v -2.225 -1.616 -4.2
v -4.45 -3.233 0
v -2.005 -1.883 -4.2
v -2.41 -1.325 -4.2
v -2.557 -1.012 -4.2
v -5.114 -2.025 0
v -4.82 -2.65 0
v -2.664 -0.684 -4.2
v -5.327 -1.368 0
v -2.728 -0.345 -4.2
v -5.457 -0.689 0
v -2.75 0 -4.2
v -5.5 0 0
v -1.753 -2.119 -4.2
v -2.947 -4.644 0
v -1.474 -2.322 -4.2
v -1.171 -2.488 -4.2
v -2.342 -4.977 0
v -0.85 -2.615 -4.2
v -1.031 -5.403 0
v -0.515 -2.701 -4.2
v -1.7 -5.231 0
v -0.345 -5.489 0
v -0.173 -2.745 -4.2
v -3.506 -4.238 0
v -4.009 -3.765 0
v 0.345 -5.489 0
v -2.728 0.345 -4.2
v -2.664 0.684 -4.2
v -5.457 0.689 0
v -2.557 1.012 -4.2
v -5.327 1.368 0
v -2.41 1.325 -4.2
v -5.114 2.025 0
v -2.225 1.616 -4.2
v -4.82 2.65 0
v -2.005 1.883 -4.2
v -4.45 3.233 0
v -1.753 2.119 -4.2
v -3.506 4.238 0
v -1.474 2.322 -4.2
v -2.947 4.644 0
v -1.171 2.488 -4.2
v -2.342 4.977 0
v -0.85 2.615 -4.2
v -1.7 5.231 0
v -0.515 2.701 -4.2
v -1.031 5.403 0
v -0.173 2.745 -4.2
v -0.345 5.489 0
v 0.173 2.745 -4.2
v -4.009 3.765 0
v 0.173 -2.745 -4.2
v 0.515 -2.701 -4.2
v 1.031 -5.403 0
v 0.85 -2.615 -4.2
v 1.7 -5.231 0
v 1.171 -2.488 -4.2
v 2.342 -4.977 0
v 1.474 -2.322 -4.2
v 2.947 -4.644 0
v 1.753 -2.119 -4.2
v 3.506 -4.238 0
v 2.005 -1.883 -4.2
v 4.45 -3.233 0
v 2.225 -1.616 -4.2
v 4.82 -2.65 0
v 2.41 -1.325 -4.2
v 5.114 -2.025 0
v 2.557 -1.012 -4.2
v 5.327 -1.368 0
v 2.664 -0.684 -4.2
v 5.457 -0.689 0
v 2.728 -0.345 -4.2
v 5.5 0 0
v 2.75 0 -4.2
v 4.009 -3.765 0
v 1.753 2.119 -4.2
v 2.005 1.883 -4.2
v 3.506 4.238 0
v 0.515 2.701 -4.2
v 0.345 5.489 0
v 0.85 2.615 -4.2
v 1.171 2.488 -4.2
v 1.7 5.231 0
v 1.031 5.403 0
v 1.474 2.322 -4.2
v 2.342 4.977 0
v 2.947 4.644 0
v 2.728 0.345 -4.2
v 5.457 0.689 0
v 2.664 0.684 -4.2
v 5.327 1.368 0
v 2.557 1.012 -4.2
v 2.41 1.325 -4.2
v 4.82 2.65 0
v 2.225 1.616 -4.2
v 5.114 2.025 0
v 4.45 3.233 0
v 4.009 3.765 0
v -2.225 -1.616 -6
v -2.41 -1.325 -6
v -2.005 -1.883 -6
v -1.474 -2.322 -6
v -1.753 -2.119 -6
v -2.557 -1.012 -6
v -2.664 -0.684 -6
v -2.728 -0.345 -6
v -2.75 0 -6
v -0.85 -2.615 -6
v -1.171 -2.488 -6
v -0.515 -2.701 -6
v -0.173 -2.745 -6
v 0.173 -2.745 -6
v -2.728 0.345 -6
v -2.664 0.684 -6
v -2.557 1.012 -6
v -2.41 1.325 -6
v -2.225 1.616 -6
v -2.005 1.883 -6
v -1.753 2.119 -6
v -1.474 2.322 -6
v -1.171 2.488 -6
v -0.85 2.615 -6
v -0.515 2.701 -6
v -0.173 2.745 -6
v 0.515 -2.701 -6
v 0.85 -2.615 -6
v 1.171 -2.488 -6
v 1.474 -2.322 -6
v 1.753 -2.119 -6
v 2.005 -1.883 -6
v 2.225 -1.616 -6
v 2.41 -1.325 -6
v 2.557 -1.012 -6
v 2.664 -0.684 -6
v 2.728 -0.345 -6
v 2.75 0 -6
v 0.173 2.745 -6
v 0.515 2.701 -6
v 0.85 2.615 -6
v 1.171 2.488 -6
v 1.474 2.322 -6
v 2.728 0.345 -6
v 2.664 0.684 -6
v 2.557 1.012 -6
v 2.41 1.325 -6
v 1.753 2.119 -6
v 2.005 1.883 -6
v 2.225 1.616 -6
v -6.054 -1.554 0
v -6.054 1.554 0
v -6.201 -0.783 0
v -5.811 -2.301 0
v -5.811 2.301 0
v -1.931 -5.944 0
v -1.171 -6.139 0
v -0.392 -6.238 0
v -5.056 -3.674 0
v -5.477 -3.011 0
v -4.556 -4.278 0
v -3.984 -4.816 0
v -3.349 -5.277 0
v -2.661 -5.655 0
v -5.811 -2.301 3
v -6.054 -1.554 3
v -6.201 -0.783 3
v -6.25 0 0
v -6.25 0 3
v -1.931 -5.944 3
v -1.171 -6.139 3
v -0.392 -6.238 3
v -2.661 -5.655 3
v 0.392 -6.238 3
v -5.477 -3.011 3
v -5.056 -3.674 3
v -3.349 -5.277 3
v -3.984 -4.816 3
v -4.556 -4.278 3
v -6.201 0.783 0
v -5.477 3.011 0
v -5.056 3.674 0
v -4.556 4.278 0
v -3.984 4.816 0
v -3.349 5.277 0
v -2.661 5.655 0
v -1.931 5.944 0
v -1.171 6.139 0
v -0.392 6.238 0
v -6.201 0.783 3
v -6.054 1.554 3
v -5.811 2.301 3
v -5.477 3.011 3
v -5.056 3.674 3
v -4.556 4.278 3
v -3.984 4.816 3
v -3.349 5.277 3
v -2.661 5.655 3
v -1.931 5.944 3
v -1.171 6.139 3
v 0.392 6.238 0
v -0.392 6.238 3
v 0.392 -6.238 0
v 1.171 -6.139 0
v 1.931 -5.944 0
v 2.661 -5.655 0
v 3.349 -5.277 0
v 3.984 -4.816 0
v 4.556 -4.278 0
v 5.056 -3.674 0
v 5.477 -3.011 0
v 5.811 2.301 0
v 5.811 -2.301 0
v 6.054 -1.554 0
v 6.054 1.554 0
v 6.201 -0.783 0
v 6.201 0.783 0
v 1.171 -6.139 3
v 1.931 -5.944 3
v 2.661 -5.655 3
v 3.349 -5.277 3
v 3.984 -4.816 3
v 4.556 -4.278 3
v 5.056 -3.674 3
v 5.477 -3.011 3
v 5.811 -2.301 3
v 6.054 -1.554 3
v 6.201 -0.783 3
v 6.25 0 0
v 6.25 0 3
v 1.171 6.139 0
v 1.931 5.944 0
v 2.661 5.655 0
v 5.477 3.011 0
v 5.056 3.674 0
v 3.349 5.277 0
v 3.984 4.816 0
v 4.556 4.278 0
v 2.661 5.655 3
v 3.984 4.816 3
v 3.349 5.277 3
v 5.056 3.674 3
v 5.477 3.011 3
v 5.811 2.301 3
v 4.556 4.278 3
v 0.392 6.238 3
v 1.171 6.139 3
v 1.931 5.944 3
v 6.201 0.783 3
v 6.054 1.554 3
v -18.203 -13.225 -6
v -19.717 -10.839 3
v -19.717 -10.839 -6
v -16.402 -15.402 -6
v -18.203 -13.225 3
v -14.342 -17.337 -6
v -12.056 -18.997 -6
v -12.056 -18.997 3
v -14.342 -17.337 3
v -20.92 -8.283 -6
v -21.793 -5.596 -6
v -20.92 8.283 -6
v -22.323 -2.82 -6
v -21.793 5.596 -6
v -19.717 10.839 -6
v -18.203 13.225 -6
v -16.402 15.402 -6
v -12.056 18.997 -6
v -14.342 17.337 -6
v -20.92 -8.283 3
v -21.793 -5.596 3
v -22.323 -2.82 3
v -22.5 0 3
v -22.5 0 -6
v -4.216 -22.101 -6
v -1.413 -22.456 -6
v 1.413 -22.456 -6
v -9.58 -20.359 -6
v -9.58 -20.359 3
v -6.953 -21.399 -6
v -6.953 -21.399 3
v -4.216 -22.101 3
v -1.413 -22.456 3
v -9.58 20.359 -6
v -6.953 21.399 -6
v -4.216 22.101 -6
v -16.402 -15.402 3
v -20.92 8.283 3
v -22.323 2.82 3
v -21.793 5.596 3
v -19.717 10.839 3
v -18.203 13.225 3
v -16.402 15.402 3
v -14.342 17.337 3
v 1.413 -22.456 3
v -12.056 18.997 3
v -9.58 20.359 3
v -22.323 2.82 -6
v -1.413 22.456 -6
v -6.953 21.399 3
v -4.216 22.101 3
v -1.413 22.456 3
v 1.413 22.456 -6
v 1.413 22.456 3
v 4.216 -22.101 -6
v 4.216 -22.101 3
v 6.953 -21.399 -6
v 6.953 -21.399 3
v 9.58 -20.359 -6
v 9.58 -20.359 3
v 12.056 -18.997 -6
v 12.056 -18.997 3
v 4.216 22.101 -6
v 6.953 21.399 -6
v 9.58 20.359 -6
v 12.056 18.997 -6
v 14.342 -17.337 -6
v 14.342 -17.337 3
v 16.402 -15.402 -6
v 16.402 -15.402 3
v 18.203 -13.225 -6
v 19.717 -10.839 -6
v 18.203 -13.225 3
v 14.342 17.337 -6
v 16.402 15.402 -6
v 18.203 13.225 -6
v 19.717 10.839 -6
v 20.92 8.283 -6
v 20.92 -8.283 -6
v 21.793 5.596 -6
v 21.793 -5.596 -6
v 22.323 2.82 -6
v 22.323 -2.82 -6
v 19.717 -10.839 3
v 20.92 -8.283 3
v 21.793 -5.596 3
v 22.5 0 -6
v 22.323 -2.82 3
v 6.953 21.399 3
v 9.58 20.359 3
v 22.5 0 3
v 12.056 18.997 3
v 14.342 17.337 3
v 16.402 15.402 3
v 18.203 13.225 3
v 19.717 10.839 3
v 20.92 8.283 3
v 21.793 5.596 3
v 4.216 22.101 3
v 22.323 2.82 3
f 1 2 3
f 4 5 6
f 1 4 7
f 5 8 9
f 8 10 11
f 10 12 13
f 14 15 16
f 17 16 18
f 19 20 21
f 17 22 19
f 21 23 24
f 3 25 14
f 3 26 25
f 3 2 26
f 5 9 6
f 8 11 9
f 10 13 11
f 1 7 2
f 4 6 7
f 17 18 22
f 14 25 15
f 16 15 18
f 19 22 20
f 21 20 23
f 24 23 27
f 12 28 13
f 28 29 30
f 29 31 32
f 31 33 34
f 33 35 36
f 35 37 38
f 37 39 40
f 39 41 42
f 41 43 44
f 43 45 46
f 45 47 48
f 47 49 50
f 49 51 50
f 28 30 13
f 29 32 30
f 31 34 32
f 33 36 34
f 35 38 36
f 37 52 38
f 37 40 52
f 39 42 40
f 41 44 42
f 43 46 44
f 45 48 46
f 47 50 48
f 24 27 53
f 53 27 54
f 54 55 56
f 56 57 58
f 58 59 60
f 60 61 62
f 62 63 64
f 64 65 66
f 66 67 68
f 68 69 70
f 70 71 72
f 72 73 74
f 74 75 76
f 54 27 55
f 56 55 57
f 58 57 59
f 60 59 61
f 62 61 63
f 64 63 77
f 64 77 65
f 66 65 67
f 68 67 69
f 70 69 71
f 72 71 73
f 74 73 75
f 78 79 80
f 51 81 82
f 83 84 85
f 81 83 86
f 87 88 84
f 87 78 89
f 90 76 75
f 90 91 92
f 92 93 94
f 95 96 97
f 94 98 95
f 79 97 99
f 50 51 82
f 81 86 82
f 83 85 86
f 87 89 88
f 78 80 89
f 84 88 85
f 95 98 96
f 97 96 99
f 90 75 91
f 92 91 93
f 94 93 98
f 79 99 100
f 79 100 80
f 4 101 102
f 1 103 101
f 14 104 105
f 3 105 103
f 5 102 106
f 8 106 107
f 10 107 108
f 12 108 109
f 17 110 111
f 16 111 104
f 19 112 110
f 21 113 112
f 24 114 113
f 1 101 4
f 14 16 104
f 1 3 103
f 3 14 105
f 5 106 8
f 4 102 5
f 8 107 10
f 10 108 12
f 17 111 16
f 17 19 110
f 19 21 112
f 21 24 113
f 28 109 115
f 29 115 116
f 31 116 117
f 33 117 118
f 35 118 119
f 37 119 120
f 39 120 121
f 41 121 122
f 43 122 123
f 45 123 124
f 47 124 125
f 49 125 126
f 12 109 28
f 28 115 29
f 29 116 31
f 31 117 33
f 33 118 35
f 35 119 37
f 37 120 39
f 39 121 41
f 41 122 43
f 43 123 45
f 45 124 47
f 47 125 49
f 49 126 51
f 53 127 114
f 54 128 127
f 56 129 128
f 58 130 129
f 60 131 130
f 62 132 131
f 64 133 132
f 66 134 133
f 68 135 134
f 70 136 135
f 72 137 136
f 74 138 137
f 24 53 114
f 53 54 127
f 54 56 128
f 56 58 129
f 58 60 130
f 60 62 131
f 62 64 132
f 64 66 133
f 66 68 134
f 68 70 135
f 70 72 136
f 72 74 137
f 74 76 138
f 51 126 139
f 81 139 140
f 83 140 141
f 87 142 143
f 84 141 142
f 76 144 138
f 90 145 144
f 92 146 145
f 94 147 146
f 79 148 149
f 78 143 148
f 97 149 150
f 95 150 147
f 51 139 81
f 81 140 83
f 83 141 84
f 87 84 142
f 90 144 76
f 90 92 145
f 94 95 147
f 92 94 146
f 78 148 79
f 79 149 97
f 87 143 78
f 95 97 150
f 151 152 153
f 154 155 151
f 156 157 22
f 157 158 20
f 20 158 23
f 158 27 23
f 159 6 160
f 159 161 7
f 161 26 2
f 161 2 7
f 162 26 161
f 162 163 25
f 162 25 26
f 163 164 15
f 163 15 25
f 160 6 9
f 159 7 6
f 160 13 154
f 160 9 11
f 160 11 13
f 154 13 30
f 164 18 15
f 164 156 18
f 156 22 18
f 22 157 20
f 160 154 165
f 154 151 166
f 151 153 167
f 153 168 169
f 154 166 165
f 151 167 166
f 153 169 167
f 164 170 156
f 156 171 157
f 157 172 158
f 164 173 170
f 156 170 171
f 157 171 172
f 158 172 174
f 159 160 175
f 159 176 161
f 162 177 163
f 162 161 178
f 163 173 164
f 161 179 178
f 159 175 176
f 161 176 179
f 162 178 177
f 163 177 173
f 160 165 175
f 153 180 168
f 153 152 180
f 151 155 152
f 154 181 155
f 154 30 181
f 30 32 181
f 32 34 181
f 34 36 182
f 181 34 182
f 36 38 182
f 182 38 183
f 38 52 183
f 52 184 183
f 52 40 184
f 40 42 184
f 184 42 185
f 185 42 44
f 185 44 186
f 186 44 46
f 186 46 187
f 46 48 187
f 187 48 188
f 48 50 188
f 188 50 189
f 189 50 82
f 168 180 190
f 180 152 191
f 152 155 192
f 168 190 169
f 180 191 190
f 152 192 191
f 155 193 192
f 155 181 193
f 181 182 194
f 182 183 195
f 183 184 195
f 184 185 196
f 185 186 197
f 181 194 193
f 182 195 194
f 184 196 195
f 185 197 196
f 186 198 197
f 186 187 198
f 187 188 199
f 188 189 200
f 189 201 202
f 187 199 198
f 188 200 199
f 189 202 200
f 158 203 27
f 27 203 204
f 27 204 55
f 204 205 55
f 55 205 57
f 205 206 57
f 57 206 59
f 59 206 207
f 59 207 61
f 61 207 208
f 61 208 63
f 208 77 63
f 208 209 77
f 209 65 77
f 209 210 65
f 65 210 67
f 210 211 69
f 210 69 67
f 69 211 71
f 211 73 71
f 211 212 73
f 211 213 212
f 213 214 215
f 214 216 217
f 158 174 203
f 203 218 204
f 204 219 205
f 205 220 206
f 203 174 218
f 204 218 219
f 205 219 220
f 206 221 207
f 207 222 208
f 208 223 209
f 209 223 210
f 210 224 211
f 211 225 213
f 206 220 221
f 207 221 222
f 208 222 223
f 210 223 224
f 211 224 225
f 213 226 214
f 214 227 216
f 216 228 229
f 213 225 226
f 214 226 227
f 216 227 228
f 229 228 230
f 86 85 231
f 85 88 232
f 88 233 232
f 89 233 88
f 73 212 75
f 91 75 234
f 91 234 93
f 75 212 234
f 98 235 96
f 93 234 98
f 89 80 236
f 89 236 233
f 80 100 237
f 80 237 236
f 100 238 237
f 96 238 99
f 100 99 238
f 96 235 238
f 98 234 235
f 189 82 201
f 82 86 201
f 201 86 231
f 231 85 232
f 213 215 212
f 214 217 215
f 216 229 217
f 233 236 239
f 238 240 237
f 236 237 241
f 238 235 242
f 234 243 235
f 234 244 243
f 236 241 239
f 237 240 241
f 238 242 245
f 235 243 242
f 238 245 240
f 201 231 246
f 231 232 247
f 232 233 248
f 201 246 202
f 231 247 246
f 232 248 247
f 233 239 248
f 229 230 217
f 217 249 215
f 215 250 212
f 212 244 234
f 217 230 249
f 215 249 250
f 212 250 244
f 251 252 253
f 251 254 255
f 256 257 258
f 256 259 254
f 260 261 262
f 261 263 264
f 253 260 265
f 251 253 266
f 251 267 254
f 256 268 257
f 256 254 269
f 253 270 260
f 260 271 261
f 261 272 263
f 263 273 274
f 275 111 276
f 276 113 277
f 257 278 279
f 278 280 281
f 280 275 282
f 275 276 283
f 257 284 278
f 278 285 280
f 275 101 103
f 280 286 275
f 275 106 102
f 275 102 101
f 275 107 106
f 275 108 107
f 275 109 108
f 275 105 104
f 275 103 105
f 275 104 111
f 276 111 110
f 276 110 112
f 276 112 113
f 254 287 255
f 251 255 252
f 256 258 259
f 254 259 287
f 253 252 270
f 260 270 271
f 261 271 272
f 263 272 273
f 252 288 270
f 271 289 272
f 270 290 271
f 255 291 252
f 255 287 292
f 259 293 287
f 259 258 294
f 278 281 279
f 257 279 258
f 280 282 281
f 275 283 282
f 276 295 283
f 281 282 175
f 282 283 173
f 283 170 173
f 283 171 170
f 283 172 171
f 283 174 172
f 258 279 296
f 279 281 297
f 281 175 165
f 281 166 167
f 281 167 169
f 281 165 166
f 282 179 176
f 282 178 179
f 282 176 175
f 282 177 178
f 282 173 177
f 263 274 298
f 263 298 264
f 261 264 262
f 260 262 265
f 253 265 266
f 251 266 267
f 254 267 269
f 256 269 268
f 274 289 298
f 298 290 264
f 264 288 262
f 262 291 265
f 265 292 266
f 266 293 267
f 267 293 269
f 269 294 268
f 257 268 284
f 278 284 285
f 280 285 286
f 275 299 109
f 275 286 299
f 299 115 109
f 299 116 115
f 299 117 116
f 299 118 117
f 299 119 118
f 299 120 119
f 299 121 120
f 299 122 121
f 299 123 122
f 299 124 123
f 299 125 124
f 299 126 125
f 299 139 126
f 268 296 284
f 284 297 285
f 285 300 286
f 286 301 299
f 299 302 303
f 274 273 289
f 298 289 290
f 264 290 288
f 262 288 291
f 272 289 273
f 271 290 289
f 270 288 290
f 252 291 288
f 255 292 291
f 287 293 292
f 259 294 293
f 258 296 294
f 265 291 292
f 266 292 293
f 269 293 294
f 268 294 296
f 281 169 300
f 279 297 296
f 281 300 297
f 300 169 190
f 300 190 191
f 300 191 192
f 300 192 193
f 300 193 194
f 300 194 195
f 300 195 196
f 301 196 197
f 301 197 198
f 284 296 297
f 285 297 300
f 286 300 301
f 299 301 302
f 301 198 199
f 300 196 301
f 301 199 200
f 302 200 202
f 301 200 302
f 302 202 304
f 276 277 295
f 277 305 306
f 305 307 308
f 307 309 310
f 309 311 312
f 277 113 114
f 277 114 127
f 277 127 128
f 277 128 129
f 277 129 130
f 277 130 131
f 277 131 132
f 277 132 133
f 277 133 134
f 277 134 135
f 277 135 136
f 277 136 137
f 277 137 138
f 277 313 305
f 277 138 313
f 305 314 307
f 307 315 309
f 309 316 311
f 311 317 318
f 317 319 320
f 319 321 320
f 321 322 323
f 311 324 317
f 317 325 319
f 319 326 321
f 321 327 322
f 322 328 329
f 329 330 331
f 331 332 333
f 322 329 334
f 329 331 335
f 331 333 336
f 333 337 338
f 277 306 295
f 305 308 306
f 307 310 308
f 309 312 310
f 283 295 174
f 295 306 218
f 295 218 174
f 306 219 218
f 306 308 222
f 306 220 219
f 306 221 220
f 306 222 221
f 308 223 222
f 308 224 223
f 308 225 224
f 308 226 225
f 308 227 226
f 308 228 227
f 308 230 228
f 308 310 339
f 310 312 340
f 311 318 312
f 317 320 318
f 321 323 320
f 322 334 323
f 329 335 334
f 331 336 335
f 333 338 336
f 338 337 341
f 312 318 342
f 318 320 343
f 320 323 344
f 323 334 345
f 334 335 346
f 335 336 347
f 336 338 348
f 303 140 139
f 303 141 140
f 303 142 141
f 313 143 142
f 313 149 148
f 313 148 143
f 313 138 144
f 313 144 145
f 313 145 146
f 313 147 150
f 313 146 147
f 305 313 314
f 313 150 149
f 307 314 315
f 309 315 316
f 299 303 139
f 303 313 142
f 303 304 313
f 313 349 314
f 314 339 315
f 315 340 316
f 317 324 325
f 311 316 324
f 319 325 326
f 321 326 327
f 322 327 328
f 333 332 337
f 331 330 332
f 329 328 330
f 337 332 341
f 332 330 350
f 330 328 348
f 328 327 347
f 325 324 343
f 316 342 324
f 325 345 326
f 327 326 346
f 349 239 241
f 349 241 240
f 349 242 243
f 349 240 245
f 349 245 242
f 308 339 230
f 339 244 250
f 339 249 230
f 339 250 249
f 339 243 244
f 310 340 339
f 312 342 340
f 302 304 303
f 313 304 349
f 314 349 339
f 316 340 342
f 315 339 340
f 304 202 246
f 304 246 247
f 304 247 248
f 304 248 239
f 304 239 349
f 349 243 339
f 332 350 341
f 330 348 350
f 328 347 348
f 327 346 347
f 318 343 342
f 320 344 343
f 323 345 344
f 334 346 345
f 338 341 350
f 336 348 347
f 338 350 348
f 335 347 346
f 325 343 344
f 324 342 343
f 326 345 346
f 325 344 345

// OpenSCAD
$fn = 50;


difference() {
	union() {
		translate(v = [0, 0, -6.0000000000]) {
			cylinder(h = 9, r = 22.5000000000);
		}
	}
	union() {
		translate(v = [0, 0, 0]) {
			rotate(a = [0, 0, 0]) {
				difference() {
					union() {
						translate(v = [0, 0, -9.0000000000]) {
							cylinder(h = 9, r = 2.2500000000);
						}
						translate(v = [0, 0, -4.2000000000]) {
							cylinder(h = 4.2000000000, r1 = 2.7500000000, r2 = 5.5000000000);
						}
						translate(v = [0, 0, -9.0000000000]) {
							cylinder(h = 9, r = 2.7500000000);
						}
						translate(v = [0, 0, -9.0000000000]) {
							cylinder(h = 9, r = 2.2500000000);
						}
					}
					union();
				}
			}
		}
		#cylinder(h = 3, r = 6.2500000000);
	}
}
